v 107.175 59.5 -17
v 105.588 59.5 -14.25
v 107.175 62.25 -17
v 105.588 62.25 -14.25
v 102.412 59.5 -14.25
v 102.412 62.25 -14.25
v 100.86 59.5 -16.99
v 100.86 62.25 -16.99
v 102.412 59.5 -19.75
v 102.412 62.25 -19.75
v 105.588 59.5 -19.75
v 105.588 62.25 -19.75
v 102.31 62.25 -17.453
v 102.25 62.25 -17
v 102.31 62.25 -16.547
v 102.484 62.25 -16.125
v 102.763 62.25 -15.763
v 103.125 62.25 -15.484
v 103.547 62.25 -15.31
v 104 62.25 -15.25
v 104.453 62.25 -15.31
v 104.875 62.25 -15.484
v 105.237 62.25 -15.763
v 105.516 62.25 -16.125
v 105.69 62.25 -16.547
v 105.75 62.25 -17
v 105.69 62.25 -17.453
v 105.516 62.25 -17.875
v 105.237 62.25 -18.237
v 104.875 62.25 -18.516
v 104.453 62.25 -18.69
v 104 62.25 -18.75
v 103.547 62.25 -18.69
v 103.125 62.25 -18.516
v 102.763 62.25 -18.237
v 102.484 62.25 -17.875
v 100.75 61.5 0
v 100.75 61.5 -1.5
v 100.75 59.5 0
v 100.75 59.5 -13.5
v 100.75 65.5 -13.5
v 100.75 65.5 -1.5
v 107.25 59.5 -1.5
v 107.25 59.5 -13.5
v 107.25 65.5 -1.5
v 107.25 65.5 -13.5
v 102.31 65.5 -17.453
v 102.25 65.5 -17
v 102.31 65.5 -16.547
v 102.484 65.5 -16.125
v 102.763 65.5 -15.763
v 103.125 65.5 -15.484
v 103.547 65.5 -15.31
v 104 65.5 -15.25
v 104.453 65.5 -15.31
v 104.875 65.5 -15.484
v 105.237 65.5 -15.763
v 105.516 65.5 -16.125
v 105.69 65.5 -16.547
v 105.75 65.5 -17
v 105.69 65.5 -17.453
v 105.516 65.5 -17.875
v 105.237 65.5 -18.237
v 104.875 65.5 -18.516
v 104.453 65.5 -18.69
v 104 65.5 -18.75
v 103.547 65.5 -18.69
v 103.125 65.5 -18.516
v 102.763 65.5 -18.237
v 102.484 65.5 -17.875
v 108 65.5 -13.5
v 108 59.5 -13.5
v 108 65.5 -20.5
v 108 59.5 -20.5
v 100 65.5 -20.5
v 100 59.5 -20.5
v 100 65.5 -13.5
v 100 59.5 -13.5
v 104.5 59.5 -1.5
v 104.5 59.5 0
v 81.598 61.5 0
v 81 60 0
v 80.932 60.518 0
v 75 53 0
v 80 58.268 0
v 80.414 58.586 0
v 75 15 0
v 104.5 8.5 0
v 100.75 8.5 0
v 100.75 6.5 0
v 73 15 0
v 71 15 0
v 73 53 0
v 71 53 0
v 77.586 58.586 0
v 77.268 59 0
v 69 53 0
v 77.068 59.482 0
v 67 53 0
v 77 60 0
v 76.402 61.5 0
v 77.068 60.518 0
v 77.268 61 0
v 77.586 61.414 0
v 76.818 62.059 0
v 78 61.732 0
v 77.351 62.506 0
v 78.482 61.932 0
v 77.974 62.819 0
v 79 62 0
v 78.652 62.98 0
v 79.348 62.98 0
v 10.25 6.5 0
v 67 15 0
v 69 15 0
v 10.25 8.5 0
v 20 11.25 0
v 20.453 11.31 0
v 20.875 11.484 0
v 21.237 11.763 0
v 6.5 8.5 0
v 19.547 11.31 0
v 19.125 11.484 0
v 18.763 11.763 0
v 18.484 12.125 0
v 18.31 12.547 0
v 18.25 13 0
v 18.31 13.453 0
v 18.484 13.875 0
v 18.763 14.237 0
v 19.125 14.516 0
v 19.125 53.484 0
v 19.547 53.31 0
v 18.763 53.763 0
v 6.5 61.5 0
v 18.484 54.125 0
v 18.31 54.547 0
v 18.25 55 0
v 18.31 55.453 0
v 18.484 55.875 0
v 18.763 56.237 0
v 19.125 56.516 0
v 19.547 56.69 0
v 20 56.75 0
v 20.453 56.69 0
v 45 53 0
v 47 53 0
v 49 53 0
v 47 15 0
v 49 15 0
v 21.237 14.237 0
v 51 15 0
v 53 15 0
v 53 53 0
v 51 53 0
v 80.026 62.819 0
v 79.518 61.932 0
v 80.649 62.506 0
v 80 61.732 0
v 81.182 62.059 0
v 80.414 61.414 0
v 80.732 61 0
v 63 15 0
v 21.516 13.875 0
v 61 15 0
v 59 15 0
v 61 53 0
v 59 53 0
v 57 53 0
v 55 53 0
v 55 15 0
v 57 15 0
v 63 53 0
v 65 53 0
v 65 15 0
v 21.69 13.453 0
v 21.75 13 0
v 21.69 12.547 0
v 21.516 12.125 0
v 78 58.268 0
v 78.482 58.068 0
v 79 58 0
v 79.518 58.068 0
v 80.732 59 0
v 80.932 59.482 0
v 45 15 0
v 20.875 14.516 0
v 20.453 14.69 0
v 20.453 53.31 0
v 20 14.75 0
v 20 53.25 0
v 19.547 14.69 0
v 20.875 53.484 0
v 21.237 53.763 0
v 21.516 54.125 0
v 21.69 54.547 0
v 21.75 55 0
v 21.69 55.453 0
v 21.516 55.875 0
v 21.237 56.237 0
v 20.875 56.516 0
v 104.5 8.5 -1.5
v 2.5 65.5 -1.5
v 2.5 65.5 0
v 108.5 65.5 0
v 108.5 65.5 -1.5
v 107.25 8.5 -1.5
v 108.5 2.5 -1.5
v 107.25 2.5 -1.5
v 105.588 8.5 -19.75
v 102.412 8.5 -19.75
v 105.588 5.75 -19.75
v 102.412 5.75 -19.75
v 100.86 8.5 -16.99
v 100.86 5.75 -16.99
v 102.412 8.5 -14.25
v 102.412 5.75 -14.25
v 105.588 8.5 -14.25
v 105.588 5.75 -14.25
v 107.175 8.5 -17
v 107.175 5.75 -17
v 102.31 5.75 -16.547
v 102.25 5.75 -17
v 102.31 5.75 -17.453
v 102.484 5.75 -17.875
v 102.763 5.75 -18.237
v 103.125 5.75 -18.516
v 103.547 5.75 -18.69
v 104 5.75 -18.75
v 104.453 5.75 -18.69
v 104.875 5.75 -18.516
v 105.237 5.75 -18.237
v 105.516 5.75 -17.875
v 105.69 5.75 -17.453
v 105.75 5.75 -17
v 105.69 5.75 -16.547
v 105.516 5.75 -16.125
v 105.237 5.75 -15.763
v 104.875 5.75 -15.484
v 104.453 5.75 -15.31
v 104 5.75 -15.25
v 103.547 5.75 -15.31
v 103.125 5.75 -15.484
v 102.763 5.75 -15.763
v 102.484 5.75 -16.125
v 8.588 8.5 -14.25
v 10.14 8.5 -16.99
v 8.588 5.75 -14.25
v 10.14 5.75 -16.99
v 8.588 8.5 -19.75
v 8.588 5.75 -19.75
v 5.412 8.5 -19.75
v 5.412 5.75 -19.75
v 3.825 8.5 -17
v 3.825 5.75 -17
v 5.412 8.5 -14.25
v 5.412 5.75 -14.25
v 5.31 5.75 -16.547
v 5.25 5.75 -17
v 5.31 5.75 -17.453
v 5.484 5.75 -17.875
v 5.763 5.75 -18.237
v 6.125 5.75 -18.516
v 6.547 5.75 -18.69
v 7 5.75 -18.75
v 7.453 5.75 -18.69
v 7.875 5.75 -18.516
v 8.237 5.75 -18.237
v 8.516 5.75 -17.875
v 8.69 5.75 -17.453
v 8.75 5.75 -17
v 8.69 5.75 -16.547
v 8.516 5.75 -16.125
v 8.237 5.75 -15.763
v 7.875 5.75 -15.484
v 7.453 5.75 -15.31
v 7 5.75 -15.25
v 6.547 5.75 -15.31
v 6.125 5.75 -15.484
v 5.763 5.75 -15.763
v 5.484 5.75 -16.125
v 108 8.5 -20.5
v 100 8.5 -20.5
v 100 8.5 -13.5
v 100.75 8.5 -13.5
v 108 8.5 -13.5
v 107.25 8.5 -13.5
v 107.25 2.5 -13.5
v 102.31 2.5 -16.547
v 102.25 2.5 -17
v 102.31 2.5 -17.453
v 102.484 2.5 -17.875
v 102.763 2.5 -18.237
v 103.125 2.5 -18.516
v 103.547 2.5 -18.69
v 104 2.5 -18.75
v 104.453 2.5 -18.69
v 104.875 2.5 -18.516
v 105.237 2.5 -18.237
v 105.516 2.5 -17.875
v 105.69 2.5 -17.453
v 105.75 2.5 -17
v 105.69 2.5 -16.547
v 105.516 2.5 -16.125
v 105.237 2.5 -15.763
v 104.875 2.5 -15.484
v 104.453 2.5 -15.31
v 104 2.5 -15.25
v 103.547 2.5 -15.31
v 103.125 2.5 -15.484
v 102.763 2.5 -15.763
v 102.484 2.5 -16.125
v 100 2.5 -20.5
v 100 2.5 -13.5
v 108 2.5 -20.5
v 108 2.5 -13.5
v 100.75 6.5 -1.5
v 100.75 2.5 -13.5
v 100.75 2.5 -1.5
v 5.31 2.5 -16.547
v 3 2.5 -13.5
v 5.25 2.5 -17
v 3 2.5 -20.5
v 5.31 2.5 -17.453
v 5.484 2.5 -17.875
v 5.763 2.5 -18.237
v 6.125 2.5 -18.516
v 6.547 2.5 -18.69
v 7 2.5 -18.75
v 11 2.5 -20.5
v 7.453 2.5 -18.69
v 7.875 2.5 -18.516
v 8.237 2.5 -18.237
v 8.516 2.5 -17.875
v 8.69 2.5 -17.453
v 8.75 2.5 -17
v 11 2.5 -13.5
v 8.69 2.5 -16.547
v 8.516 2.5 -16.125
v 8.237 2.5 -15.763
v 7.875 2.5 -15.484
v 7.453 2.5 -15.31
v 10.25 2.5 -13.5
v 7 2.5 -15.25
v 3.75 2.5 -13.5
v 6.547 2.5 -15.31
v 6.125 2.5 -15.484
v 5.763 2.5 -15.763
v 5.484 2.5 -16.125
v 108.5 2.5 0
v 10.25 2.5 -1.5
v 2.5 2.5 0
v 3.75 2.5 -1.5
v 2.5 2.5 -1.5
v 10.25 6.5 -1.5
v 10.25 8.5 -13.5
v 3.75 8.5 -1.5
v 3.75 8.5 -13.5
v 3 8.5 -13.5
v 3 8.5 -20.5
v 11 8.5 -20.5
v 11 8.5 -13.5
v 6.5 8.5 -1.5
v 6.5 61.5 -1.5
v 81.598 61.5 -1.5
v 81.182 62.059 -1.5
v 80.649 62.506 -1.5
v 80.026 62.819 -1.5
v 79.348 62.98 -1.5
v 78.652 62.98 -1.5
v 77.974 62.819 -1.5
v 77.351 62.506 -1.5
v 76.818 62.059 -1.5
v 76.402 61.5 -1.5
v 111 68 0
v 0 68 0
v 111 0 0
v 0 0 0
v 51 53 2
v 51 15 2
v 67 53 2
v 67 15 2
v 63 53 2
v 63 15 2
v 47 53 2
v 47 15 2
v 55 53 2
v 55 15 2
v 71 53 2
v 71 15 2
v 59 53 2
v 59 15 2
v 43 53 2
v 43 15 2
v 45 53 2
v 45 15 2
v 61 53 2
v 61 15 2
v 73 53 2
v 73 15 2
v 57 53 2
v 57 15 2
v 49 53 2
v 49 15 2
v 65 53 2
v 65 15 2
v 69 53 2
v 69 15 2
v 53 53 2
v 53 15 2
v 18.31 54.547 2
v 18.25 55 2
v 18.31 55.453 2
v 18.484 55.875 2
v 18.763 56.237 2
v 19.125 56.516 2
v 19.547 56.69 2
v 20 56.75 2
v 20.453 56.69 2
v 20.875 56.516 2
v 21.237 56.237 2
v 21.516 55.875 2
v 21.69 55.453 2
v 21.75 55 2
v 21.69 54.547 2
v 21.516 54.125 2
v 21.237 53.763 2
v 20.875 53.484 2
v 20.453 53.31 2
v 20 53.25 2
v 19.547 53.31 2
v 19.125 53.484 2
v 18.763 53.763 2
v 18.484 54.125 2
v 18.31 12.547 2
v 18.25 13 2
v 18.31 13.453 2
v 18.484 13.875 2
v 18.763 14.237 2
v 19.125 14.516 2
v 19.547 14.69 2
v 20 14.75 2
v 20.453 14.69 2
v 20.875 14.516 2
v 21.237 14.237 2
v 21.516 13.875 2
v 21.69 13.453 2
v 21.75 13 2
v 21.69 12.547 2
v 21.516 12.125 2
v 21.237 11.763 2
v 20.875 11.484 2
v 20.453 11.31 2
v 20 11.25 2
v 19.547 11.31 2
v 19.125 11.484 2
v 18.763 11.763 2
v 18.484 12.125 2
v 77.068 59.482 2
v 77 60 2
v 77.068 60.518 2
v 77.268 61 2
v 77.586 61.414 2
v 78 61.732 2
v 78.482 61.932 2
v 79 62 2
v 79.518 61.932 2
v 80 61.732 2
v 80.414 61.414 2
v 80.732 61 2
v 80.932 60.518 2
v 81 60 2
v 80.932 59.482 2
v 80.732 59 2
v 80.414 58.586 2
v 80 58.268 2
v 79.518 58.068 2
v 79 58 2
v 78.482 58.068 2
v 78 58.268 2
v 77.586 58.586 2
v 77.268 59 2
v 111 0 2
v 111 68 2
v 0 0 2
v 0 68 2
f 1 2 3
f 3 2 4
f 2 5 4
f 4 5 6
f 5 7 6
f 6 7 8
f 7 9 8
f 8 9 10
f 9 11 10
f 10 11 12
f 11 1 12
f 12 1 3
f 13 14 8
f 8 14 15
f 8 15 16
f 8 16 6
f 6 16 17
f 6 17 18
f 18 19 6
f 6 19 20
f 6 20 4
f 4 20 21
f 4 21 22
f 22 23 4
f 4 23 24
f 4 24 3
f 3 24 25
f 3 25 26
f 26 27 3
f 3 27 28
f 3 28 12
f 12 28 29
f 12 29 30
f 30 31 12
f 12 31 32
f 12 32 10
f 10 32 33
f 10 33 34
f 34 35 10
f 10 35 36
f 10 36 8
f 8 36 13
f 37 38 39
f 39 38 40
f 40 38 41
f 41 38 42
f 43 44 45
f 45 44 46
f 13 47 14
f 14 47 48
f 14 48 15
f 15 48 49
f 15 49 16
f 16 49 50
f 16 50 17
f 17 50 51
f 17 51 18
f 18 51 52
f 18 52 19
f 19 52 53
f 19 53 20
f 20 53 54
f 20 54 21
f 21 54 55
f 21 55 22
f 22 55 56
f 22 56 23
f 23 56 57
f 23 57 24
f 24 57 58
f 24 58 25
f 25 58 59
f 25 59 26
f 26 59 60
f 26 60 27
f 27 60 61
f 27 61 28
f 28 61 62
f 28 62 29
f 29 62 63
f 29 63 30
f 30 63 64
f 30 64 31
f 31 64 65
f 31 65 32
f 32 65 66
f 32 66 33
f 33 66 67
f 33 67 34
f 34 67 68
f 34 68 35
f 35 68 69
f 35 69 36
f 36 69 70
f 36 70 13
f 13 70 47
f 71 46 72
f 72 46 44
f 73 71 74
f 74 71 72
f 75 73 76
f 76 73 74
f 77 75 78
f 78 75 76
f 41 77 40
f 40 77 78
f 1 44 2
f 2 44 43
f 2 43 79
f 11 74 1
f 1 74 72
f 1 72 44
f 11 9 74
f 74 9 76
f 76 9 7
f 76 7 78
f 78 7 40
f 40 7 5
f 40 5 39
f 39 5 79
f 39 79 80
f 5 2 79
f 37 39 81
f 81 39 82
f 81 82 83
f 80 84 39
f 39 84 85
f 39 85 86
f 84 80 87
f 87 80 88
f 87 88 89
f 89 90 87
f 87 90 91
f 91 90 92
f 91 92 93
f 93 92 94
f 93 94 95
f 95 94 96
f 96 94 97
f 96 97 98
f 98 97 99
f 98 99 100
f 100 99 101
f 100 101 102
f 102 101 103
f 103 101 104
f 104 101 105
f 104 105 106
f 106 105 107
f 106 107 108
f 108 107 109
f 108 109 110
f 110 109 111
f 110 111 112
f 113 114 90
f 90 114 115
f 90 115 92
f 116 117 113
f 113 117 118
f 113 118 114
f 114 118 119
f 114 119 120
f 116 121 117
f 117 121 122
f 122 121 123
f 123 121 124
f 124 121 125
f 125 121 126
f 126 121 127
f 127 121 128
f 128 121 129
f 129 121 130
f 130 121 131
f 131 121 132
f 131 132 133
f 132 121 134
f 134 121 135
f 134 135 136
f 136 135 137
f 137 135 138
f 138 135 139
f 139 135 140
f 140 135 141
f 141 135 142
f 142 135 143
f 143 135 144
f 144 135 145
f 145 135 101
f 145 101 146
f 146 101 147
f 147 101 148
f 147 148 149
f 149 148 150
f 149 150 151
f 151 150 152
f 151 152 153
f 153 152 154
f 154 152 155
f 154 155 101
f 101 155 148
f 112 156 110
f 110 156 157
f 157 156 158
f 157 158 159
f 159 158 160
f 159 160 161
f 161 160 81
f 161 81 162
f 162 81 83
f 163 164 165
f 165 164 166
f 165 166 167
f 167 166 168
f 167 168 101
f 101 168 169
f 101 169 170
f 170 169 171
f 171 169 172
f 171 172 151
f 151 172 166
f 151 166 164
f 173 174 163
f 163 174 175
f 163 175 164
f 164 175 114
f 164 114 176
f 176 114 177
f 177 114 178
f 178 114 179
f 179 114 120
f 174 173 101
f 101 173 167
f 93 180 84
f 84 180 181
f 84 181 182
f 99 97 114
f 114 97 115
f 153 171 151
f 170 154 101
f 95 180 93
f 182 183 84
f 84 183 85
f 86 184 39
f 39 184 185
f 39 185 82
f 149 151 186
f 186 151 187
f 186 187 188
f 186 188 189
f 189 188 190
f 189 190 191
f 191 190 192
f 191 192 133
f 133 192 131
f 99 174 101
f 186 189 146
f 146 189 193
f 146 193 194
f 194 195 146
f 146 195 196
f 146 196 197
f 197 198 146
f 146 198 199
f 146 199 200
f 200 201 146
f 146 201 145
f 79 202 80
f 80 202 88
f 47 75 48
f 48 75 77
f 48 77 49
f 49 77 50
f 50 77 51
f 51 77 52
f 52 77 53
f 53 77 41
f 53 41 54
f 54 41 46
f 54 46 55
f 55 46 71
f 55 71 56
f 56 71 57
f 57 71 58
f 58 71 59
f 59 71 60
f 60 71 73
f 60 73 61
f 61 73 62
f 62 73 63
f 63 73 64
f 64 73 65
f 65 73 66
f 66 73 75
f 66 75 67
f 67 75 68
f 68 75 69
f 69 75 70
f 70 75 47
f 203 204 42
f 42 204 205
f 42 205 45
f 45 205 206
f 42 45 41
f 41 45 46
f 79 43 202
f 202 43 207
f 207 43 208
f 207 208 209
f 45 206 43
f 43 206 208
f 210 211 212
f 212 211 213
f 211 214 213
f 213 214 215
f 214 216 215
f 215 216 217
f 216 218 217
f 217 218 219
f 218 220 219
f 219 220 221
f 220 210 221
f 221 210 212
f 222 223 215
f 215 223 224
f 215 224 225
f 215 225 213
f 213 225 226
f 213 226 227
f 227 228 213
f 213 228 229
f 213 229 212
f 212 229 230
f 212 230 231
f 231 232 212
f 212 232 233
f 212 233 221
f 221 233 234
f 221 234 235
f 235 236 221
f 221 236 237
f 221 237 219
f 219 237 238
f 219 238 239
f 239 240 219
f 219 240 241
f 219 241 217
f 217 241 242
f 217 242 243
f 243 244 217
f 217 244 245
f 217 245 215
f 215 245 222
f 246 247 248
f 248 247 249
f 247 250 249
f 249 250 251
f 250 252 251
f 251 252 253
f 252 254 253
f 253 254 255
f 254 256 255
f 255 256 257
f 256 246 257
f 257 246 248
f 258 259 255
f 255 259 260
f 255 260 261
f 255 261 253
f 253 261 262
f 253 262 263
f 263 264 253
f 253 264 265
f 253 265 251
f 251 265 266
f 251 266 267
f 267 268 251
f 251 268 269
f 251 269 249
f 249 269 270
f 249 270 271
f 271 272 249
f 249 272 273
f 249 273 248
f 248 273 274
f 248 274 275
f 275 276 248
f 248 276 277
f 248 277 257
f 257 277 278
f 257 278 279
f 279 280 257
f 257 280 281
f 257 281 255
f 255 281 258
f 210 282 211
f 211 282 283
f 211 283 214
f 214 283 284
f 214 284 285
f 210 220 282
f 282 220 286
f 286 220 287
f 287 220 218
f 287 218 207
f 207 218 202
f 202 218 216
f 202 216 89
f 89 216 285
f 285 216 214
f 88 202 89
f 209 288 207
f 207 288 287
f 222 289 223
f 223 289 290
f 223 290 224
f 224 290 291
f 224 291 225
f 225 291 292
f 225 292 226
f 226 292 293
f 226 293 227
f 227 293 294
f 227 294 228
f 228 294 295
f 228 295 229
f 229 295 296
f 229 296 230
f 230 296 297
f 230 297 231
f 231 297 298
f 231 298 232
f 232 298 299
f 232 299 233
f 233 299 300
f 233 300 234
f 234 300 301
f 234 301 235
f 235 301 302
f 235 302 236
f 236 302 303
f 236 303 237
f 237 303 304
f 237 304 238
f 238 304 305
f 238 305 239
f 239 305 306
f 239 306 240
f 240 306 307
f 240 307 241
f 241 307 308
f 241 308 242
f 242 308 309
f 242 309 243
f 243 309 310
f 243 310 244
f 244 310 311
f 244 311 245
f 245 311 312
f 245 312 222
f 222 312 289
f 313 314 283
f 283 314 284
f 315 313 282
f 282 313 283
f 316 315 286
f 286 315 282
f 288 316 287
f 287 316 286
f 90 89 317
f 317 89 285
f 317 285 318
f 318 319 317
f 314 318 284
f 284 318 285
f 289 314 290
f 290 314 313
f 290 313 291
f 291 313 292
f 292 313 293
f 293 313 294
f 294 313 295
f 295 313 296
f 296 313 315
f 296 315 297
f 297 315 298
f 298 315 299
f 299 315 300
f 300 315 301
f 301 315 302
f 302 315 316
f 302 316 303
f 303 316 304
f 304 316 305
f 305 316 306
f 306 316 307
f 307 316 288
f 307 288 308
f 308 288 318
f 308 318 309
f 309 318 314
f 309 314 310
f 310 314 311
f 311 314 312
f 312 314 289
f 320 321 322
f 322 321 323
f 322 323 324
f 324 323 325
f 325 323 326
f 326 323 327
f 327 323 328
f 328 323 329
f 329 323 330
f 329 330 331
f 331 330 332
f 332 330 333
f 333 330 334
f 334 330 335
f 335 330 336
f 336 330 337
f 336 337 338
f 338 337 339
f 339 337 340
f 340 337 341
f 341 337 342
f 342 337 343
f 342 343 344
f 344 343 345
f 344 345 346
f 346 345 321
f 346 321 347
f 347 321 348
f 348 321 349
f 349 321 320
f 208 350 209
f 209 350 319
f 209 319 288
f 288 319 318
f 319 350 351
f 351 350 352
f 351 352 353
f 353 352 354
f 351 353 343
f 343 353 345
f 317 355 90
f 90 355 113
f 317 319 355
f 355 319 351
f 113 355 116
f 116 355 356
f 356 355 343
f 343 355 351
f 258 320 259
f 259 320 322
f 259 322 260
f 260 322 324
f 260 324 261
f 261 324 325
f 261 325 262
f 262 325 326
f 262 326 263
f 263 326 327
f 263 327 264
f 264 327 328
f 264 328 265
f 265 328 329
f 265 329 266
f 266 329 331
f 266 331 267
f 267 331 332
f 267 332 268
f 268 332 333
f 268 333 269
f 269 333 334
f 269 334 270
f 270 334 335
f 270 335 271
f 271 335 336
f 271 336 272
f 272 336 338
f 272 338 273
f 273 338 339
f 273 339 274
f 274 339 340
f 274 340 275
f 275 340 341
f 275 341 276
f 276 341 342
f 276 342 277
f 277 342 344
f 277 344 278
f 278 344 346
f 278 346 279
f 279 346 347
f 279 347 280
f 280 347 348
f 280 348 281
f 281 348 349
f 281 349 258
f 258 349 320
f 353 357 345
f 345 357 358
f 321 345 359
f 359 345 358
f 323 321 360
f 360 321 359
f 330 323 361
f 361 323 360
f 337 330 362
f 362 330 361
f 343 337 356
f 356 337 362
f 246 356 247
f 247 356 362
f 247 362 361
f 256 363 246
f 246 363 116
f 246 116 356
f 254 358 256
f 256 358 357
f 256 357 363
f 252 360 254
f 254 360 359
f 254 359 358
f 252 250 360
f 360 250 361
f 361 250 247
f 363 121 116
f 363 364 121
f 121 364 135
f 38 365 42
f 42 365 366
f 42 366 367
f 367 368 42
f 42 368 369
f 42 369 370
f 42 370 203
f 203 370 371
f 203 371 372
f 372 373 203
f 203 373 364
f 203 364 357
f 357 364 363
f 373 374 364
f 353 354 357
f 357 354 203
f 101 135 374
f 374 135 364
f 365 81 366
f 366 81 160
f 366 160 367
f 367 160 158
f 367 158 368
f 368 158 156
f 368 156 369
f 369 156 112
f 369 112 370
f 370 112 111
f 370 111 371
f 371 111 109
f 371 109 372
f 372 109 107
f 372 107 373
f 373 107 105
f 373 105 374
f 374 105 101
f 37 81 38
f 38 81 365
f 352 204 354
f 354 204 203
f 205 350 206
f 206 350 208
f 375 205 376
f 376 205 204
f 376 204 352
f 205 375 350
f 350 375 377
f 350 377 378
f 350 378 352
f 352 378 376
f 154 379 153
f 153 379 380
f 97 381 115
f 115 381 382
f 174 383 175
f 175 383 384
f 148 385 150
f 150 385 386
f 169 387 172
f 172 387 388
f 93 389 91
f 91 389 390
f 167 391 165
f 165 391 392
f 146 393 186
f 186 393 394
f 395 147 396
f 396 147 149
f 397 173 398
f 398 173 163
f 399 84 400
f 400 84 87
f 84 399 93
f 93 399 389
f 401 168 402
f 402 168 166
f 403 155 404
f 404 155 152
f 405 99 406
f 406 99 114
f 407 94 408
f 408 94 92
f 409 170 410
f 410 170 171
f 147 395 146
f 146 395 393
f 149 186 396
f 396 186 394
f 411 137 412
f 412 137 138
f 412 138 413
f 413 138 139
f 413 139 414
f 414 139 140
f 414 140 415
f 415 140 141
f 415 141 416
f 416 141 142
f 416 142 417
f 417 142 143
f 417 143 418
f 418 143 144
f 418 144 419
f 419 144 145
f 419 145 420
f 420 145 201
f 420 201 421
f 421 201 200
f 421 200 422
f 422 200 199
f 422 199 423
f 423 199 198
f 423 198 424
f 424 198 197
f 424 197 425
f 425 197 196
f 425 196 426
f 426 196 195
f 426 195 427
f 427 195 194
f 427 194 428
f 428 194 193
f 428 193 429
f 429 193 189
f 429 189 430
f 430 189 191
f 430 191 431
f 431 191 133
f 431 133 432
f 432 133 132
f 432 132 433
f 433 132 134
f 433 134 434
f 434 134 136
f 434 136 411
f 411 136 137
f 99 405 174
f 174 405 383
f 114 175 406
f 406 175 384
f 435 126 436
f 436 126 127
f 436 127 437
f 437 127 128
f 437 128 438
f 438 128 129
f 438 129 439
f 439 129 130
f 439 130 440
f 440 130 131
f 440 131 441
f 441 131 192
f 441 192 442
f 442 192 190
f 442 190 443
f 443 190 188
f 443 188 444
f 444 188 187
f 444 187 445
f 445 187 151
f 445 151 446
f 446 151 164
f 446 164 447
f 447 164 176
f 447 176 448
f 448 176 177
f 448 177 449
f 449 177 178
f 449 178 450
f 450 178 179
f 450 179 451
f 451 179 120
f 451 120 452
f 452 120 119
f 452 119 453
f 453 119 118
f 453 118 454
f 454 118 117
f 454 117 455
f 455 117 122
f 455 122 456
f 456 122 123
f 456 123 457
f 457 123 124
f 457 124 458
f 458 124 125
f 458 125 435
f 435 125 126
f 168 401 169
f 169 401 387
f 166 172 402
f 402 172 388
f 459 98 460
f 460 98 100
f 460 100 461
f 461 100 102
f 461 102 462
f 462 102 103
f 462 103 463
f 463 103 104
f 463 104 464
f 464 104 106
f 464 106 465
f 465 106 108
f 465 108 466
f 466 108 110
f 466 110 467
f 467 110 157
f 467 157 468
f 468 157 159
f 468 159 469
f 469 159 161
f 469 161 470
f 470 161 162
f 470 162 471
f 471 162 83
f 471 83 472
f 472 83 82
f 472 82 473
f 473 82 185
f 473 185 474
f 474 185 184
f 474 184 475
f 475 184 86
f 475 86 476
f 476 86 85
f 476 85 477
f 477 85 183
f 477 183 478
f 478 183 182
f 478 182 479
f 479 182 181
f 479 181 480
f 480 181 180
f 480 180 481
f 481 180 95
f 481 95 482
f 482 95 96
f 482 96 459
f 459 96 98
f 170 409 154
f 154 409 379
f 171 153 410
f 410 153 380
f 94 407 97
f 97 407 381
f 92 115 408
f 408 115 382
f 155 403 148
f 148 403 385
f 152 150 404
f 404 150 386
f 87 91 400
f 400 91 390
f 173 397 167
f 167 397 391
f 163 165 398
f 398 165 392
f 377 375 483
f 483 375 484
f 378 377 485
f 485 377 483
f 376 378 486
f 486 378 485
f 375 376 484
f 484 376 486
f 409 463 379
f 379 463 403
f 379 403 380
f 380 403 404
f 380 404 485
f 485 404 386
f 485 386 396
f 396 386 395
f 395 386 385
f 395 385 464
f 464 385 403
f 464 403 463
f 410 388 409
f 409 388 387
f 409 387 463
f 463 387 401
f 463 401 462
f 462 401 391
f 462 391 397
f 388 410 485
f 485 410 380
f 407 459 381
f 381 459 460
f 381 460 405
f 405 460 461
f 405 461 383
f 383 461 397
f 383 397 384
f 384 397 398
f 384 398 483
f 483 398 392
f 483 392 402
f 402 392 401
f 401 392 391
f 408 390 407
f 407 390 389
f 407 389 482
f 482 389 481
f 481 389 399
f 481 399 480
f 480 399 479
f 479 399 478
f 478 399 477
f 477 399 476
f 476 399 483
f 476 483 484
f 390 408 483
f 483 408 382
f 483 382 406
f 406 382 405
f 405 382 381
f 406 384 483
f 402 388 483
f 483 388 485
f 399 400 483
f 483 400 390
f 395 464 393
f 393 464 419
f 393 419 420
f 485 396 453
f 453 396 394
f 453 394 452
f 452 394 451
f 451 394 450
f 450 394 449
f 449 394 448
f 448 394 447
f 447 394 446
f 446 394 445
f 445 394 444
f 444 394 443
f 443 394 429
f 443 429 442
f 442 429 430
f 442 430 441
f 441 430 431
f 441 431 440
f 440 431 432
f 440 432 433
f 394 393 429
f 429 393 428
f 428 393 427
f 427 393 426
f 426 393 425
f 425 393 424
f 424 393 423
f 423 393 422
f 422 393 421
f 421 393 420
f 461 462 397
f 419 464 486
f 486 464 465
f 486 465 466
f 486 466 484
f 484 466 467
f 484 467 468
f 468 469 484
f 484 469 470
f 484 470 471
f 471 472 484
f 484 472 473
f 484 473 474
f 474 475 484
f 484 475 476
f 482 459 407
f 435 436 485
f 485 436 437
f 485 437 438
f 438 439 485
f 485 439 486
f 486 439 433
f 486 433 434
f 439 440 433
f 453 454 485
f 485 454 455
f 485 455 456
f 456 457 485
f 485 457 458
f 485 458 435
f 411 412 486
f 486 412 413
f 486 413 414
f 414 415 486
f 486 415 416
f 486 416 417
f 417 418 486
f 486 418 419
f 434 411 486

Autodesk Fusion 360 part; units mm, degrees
sketch "Skizze1" plane through (0, 0, 0) normal (0, 0, 1) x (1, 0, 0)
  line L0 (0, 0) -> (111, 0)
  line L1 (111, 0) -> (111, 68)
  line L2 (0, 68) -> (0, 0)
  line L3 (111, 68) -> (0, 68)
  circle A0 centre (79, 60) radius 2
  line L4 (2, 66) -> (109, 66)
  line L5 (109, 66) -> (109, 2)
  line L6 (109, 2) -> (2, 2)
  line L7 (2, 2) -> (2, 66)
  line L8 (2.5, 66) -> (2.5, 65.5)
  line L9 (2.5, 65.5) -> (2, 65.5)
  line L10 (108.5, 2) -> (108.5, 2.5)
  line L11 (108.5, 2.5) -> (109, 2.5)
  line L12 (2.5, 65.5) -> (108.5, 65.5)
  line L13 (108.5, 65.5) -> (108.5, 2.5)
  line L14 (108.5, 2.5) -> (2.5, 2.5)
  line L15 (2.5, 2.5) -> (2.5, 65.5)
  line L16 (5, 9) -> (35, 9)
  line L17 (35, 9) -> (35, 59)
  line L18 (35, 59) -> (5, 59)
  line L19 (5, 59) -> (5, 9)
  line L20 (20, 9) -> (20, 13)
  circle A1 centre (20, 13) radius 1.75
  line L21 (20, 59) -> (20, 55)
  circle A2 centre (20, 55) radius 1.75
  line L22 (75, 15) -> (73, 15)
  line L23 (73, 15) -> (73, 53)
  line L24 (73, 53) -> (75, 53)
  line L25 (75, 53) -> (75, 15)
  line L26 (71, 53) -> (71, 15)
  line L27 (71, 15) -> (69, 15)
  line L28 (69, 53) -> (71, 53)
  line L29 (69, 15) -> (69, 53)
  line L30 (67, 53) -> (67, 15)
  line L31 (67, 15) -> (65, 15)
  line L32 (65, 53) -> (67, 53)
  line L33 (65, 15) -> (65, 53)
  line L34 (63, 53) -> (63, 15)
  line L35 (63, 15) -> (61, 15)
  line L36 (61, 53) -> (63, 53)
  line L37 (61, 15) -> (61, 53)
  line L38 (59, 53) -> (59, 15)
  line L39 (59, 15) -> (57, 15)
  line L40 (57, 53) -> (59, 53)
  line L41 (57, 15) -> (57, 53)
  line L42 (55, 53) -> (55, 15)
  line L43 (55, 15) -> (53, 15)
  line L44 (53, 53) -> (55, 53)
  line L45 (53, 15) -> (53, 53)
  line L46 (51, 53) -> (51, 15)
  line L47 (51, 15) -> (49, 15)
  line L48 (49, 53) -> (51, 53)
  line L49 (49, 15) -> (49, 53)
  line L50 (47, 53) -> (47, 15)
  line L51 (47, 15) -> (45, 15)
  line L52 (45, 53) -> (47, 53)
  line L53 (45, 15) -> (45, 53)
  line L54 (0, 60) -> (77, 60)
  line L55 (79, 60) -> (79, 66)
  dimension "d9" = 111
  dimension "d10" = 68
  dimension "d13" = 4
  dimension "d30" = 0.5
  dimension "d31" = 0.5
  dimension "d32" = 30
  dimension "d33" = 50
  dimension "d34" = 3.5
  dimension "d35" = 4
  dimension "d36" = 3.5
  dimension "d72" = 2
  dimension "d73" = 38
  dimension "d76" = -28
  dimension "d77" = 0
  dimension "d110" = 77
  dimension "d111" = 6
extrude "Extrusion5" add sketch "Skizze1" along normal blind 2 contours L7 L9 L15 L54 | L6 L7 L10 L14 L15 L54 | L0 L1 L2 L3 | L4 L7 L8 L9 | A0 L12 L13 L14 L15 L54 L55 | A0 L12 L15 L54 L55 | L5 L6 L10 L11 | L4 L8 L12 L55 | L4 L5 L11 L12 L13 L55 | L16 L17 L18 L19
sketch "Skizze3" plane through (0, 53, 0) normal (0, -1, 0) x (1, 0, 0)
  line L0 (73, 0) -> (75, 0)
  line L1 (75, 0) -> (75, 2)
  line L2 (75, 2) -> (73, 2)
  line L3 (73, 2) -> (73, 0)
  line L4 (73, 2) -> (75, 0)
  line L5 (73, 0) -> (71, 2)
  line L6 (71, 2) -> (73, 2)
  line L7 (75, 0) -> (73, 0)
  line L8 (73, 0) -> (71.183, 0)
  line L9 (71.183, 0) -> (71, 2)
  line L10 (71.183, 0) -> (71, 2)
  line L11 (75, 0) -> (75, 2)
  line L12 (73, 2) -> (75, 2)
  line L13 (69, 0) -> (67, 2)
  line L14 (71, 0) -> (71, 2)
  line L15 (69, 2) -> (69, 0)
  line L16 (71, 2) -> (69, 2)
  line L17 (69, 2) -> (71, 2)
  line L18 (71, 0) -> (71, 2)
  line L19 (69, 0) -> (67.183, 0)
  line L20 (69, 2) -> (71, 0)
  line L21 (69, 0) -> (71, 0)
  line L22 (67.183, 0) -> (67, 2)
  line L23 (67, 2) -> (69, 2)
  line L24 (67.183, 0) -> (67, 2)
  line L25 (71, 0) -> (69, 0)
  line L26 (65, 0) -> (63, 2)
  line L27 (67, 0) -> (67, 2)
  line L28 (65, 2) -> (65, 0)
  line L29 (67, 2) -> (65, 2)
  line L30 (65, 2) -> (67, 2)
  line L31 (67, 0) -> (67, 2)
  line L32 (65, 0) -> (63.183, 0)
  line L33 (65, 2) -> (67, 0)
  line L34 (65, 0) -> (67, 0)
  line L35 (63.183, 0) -> (63, 2)
  line L36 (63, 2) -> (65, 2)
  line L37 (63.183, 0) -> (63, 2)
  line L38 (67, 0) -> (65, 0)
  line L39 (61, 0) -> (59, 2)
  line L40 (63, 0) -> (63, 2)
  line L41 (61, 2) -> (61, 0)
  line L42 (63, 2) -> (61, 2)
  line L43 (61, 2) -> (63, 2)
  line L44 (63, 0) -> (63, 2)
  line L45 (61, 0) -> (59.183, 0)
  line L46 (61, 2) -> (63, 0)
  line L47 (61, 0) -> (63, 0)
  line L48 (59.183, 0) -> (59, 2)
  line L49 (59, 2) -> (61, 2)
  line L50 (59.183, 0) -> (59, 2)
  line L51 (63, 0) -> (61, 0)
  line L52 (57, 0) -> (55, 2)
  line L53 (59, 0) -> (59, 2)
  line L54 (57, 2) -> (57, 0)
  line L55 (59, 2) -> (57, 2)
  line L56 (57, 2) -> (59, 2)
  line L57 (59, 0) -> (59, 2)
  line L58 (57, 0) -> (55.183, 0)
  line L59 (57, 2) -> (59, 0)
  line L60 (57, 0) -> (59, 0)
  line L61 (55.183, 0) -> (55, 2)
  line L62 (55, 2) -> (57, 2)
  line L63 (55.183, 0) -> (55, 2)
  line L64 (59, 0) -> (57, 0)
  line L65 (53, 0) -> (51, 2)
  line L66 (55, 0) -> (55, 2)
  line L67 (53, 2) -> (53, 0)
  line L68 (55, 2) -> (53, 2)
  line L69 (53, 2) -> (55, 2)
  line L70 (55, 0) -> (55, 2)
  line L71 (53, 0) -> (51.183, 0)
  line L72 (53, 2) -> (55, 0)
  line L73 (53, 0) -> (55, 0)
  line L74 (51.183, 0) -> (51, 2)
  line L75 (51, 2) -> (53, 2)
  line L76 (51.183, 0) -> (51, 2)
  line L77 (55, 0) -> (53, 0)
  line L78 (49, 0) -> (47, 2)
  line L79 (51, 0) -> (51, 2)
  line L80 (49, 2) -> (49, 0)
  line L81 (51, 2) -> (49, 2)
  line L82 (49, 2) -> (51, 2)
  line L83 (51, 0) -> (51, 2)
  line L84 (49, 0) -> (47.183, 0)
  line L85 (49, 2) -> (51, 0)
  line L86 (49, 0) -> (51, 0)
  line L87 (47.183, 0) -> (47, 2)
  line L88 (47, 2) -> (49, 2)
  line L89 (47.183, 0) -> (47, 2)
  line L90 (51, 0) -> (49, 0)
  line L91 (45, 0) -> (43, 2)
  line L92 (47, 0) -> (47, 2)
  line L93 (45, 2) -> (45, 0)
  line L94 (47, 2) -> (45, 2)
  line L95 (45, 2) -> (47, 2)
  line L96 (47, 0) -> (47, 2)
  line L97 (45, 0) -> (43.183, 0)
  line L98 (45, 2) -> (47, 0)
  line L99 (45, 0) -> (47, 0)
  line L100 (43.183, 0) -> (43, 2)
  line L101 (43, 2) -> (45, 2)
  line L102 (43.183, 0) -> (43, 2)
  line L103 (47, 0) -> (45, 0)
  dimension "d80" = -28
  dimension "d81" = 0
extrude "Extrusion8" add sketch "Skizze3" along normal blind 38 contours L92 L94 L95 L96 L98 | L79 L81 L82 L83 L85 | L66 L68 L69 L70 L72 | L53 L55 L56 L57 L59 | L40 L42 L43 L44 L46 | L27 L29 L30 L31 L33 | L14 L16 L17 L18 L20 | L1 L2 L4 L11 L12
extrude "Extrusion9" cut sketch "Skizze3" along normal blind 38 contours L0 L3 L4 L7 | L3 L5 L6 | L15 L20 L21 L25 | L13 L15 L23 | L28 L33 L34 L38 | L26 L28 L36 | L41 L46 L47 L51 | L39 L41 L49 | L54 L59 L60 L64 | L52 L54 L62 | L67 L72 L73 L77 | L65 L67 L75 | L80 L85 L86 L90 | L78 L80 L88 | L93 L98 L99 L103 | L91 L93 L101
sketch "Skizze5" plane through (0, 0, 0) normal (0, 0, 1) x (1, 0, 0)
  line L0 (111, 68) -> (0, 68)
  line L1 (2, 66) -> (109, 66)
  line L2 (108.5, 2) -> (108.5, 2.5)
  line L3 (108.5, 2.5) -> (2.5, 2.5)
  line L4 (0, 0) -> (111, 0)
  line L5 (109, 66) -> (109, 2)
  line L6 (108.5, 2.5) -> (109, 2.5)
  line L7 (2.5, 65.5) -> (108.5, 65.5)
  line L8 (111, 0) -> (111, 68)
  line L9 (2.5, 66) -> (2.5, 65.5)
  line L10 (108.5, 65.5) -> (108.5, 2.5)
  line L11 (109, 2) -> (2, 2)
  line L12 (2, 2) -> (2, 66)
  line L13 (2.5, 65.5) -> (2, 65.5)
  line L14 (0, 68) -> (0, 0)
  line L15 (2.5, 2.5) -> (2.5, 65.5)
  line L16 (108.5, 65.5) -> (104.5, 65.5)
  line L17 (104.5, 65.5) -> (104.5, 61.5)
  line L18 (2.5, 2.5) -> (2.5, 6.5)
  line L19 (2.5, 6.5) -> (6.5, 6.5)
  line L20 (104.5, 61.5) -> (6.5, 61.5)
  line L21 (6.5, 61.5) -> (6.5, 6.5)
  line L22 (6.5, 6.5) -> (104.5, 6.5)
  line L23 (104.5, 6.5) -> (104.5, 61.5)
  circle A0 centre (79, 60) radius 2
  circle A1 centre (79, 60) radius 3
  line L24 (82.5, 61.5) -> (75, 61.5)
  dimension "d138" = 111
  dimension "d139" = 68
  dimension "d141" = 0.5
  dimension "d142" = 0.5
  dimension "d152" = 4
  dimension "d153" = 4
  dimension "d154" = 4
  dimension "d155" = 4
  dimension "d156" = 6
extrude "Extrusion15" add sketch "Skizze5" against normal blind 1.5 contours L7 L15 L17 L19 L20 L21 A1 L24 | L3 L7 L10 L15 L16 L17 L18 L19 L22 L23
sketch "Skizze2" plane through (0, 0, 0) normal (0, -1, 0) x (1, 0, 0)
  line L0 (0, 0) -> (111, 0)
  line L1 (111, 2) -> (0, 2)
  line L2 (0, 2) -> (0, 0)
  circle A0 centre (7, -17) radius 1.75
  line L3 (8.75, -17) -> (10.25, -17)
  line L4 (7.0687, -18.7487) -> (7.0687, -20.2487)
  line L5 (5.25, -17) -> (3.75, -17)
  line L6 (3.75, -17) -> (3.75, -20.25)
  line L7 (3.75, -20.25) -> (7.0687, -20.2487)
  line L8 (7.0687, -20.2487) -> (10.25, -20.25)
  line L9 (10.25, -20.25) -> (10.25, -17)
  line L10 (3.75, -17) -> (3.75, 0)
  line L11 (10.25, -17) -> (10.25, 0)
  line L12 (0, 0) -> (7, 0)
  line L13 (7, 0) -> (7, -17)
  line L14 (55.5, 0) -> (55.5, -30)
  line L15 (0, 0) -> (111, 0)
  line L16 (111, 2) -> (0, 2)
  line L17 (0, 2) -> (0, 0)
  line L18 (5.4123, -14.25) -> (3.8246, -17)
  line L19 (3.8246, -17) -> (5.4123, -19.75)
  line L20 (5.4123, -19.75) -> (8.5877, -19.75)
  line L21 (8.5877, -19.75) -> (10.14, -16.9898)
  line L22 (10.14, -16.9898) -> (8.5877, -14.25)
  line L23 (8.5877, -14.25) -> (5.4123, -14.25)
  line L24 (3, -13.5) -> (11, -13.5)
  line L25 (11, -13.5) -> (11, -20.5)
  line L26 (11, -20.5) -> (3, -20.5)
  line L27 (3, -20.5) -> (3, -13.5)
  line L28 (105.5877, -14.25) -> (107.1754, -17)
  line L29 (100.75, -20.25) -> (100.75, -17)
  line L30 (100, -20.5) -> (108, -20.5)
  line L31 (100.86, -16.9898) -> (102.4123, -14.25)
  line L32 (102.4123, -19.75) -> (100.86, -16.9898)
  line L33 (102.25, -17) -> (100.75, -17)
  line L34 (107.25, -20.25) -> (103.9313, -20.2487)
  line L35 (104, 0) -> (104, -17)
  line L36 (108, -20.5) -> (108, -13.5)
  line L37 (103.9313, -20.2487) -> (100.75, -20.25)
  line L38 (102.4123, -14.25) -> (105.5877, -14.25)
  line L39 (107.1754, -17) -> (105.5877, -19.75)
  circle A1 centre (104, -17) radius 1.75
  line L40 (105.5877, -19.75) -> (102.4123, -19.75)
  line L41 (107.25, -17) -> (107.25, 0)
  line L42 (103.9313, -18.7487) -> (103.9313, -20.2487)
  line L43 (105.75, -17) -> (107.25, -17)
  line L44 (100.75, -17) -> (100.75, 0)
  line L45 (108, -13.5) -> (100, -13.5)
  line L46 (107.25, -17) -> (107.25, -20.25)
  line L47 (100, -13.5) -> (100, -20.5)
  dimension "d46" = 3.5
  dimension "d56" = 1.5
  dimension "d57" = 1.5
  dimension "d58" = 1.5
  dimension "d59" = 7
  dimension "d96" = 8
  dimension "d97" = 7
extrude "Extrusion16" add sketch "Skizze2" against normal blind 6 from surface at -2.5 contours L0 L15 L35 L44 L45 | L0 L10 L12 L13 L15 L24 | L0 L11 L13 L15 L24 | L5 L10 L13 L18 L23 L24 | L6 L7 L8 L9 L10 L11 L24 L25 L26 L27 | L3 L11 L13 L21 L22 L23 L24 | L4 L5 L6 L7 L19 L20 | A0 L3 L13 L21 L22 L23 | A0 L5 L13 L18 L23 | A0 L4 L5 L19 L20 | L3 L4 L8 L9 L20 L21 | L0 L15 L35 L41 L45 | L31 L32 L33 L35 L38 L44 L45 | L29 L30 L34 L36 L37 L41 L44 L45 L46 L47 | A0 L3 L4 L20 L21 | L28 L35 L38 L41 L43 L45 | L29 L32 L33 L37 L40 L42 | L28 L35 L38 A1 L43 | L31 L32 L33 L35 L38 A1 | L32 L33 A1 L40 L42 | L34 L39 L40 L42 L43 L46 | L39 A1 L40 L42 L43
extrude "Extrusion17" cut sketch "Skizze2" along normal blind 2.75 from surface at -8.5 contours A0 L3 L13 L21 L22 L23 | A0 L5 L13 L18 L23 | A0 L4 L5 L19 L20 | A0 L3 L4 L20 L21 | L28 L35 L38 A1 L43 | L31 L32 L33 L35 L38 A1 | L32 L33 A1 L40 L42 | L39 A1 L40 L42 L43
extrude "Extrusion18" add sketch "Skizze2" along normal blind 6 from surface at -65.5 contours L0 L15 L35 L44 L45 | L0 L15 L35 L41 L45 | L31 L32 L33 L35 L38 L44 L45 | L29 L30 L34 L36 L37 L41 L44 L45 L46 L47 | L28 L35 L38 L41 L43 L45 | L29 L32 L33 L37 L40 L42 | L28 L35 L38 A1 L43 | L31 L32 L33 L35 L38 A1 | L32 L33 A1 L40 L42 | L34 L39 L40 L42 L43 L46 | L39 A1 L40 L42 L43
extrude "Extrusion19" cut sketch "Skizze2" against normal blind 2.75 from surface at -59.5 contours L28 L35 L38 A1 L43 | L31 L32 L33 L35 L38 A1 | L32 L33 A1 L40 L42 | L39 A1 L40 L42 L43
sketch "Skizze6" plane through (0, 0, 0) normal (0, 0, -1) x (1, 0, 0)
  line L0 (100.75, -61.5) -> (100.75, -59.5)
  line L1 (100.75, -59.5) -> (104.5, -59.5)
  line L2 (104.5, -59.5) -> (104.5, -8.5)
  line L3 (104.5, -8.5) -> (100.75, -8.5)
  line L4 (100.75, -8.5) -> (100.75, -6.5)
  line L5 (100.75, -6.5) -> (10.25, -6.5)
  line L6 (10.25, -6.5) -> (10.25, -8.5)
  line L7 (10.25, -8.5) -> (6.5, -8.5)
  line L8 (6.5, -8.5) -> (6.5, -61.5)
  line L9 (6.5, -61.5) -> (76.4019, -61.5)
  arc A0 (76.4019, -61.5) -> (81.5981, -61.5) centre (79, -60) ccw
  line L10 (81.5981, -61.5) -> (100.75, -61.5)
  line L11 (61, -15) -> (63, -15)
  line L12 (63, -15) -> (63, -53)
  line L13 (63, -53) -> (61, -53)
  line L14 (61, -53) -> (61, -15)
  line L15 (75, -53) -> (73, -53)
  line L16 (73, -53) -> (73, -15)
  line L17 (73, -15) -> (75, -15)
  line L18 (75, -15) -> (75, -53)
  line L19 (49, -15) -> (51, -15)
  line L20 (51, -15) -> (51, -53)
  line L21 (51, -53) -> (49, -53)
  line L22 (49, -53) -> (49, -15)
  line L23 (69, -15) -> (71, -15)
  line L24 (71, -15) -> (71, -53)
  line L25 (71, -53) -> (69, -53)
  line L26 (69, -53) -> (69, -15)
  line L27 (53, -15) -> (55, -15)
  line L28 (55, -15) -> (55, -53)
  line L29 (55, -53) -> (53, -53)
  line L30 (53, -53) -> (53, -15)
  circle A1 centre (79, -60) radius 2
  line L31 (57, -15) -> (59, -15)
  line L32 (59, -15) -> (59, -53)
  line L33 (59, -53) -> (57, -53)
  line L34 (57, -53) -> (57, -15)
  circle A2 centre (20, -13) radius 1.75
  line L35 (65, -15) -> (67, -15)
  line L36 (67, -15) -> (67, -53)
  line L37 (67, -53) -> (65, -53)
  line L38 (65, -53) -> (65, -15)
  circle A3 centre (20, -55) radius 1.75
  line L39 (45, -15) -> (47, -15)
  line L40 (47, -15) -> (47, -53)
  line L41 (47, -53) -> (45, -53)
  line L42 (45, -53) -> (45, -15)
